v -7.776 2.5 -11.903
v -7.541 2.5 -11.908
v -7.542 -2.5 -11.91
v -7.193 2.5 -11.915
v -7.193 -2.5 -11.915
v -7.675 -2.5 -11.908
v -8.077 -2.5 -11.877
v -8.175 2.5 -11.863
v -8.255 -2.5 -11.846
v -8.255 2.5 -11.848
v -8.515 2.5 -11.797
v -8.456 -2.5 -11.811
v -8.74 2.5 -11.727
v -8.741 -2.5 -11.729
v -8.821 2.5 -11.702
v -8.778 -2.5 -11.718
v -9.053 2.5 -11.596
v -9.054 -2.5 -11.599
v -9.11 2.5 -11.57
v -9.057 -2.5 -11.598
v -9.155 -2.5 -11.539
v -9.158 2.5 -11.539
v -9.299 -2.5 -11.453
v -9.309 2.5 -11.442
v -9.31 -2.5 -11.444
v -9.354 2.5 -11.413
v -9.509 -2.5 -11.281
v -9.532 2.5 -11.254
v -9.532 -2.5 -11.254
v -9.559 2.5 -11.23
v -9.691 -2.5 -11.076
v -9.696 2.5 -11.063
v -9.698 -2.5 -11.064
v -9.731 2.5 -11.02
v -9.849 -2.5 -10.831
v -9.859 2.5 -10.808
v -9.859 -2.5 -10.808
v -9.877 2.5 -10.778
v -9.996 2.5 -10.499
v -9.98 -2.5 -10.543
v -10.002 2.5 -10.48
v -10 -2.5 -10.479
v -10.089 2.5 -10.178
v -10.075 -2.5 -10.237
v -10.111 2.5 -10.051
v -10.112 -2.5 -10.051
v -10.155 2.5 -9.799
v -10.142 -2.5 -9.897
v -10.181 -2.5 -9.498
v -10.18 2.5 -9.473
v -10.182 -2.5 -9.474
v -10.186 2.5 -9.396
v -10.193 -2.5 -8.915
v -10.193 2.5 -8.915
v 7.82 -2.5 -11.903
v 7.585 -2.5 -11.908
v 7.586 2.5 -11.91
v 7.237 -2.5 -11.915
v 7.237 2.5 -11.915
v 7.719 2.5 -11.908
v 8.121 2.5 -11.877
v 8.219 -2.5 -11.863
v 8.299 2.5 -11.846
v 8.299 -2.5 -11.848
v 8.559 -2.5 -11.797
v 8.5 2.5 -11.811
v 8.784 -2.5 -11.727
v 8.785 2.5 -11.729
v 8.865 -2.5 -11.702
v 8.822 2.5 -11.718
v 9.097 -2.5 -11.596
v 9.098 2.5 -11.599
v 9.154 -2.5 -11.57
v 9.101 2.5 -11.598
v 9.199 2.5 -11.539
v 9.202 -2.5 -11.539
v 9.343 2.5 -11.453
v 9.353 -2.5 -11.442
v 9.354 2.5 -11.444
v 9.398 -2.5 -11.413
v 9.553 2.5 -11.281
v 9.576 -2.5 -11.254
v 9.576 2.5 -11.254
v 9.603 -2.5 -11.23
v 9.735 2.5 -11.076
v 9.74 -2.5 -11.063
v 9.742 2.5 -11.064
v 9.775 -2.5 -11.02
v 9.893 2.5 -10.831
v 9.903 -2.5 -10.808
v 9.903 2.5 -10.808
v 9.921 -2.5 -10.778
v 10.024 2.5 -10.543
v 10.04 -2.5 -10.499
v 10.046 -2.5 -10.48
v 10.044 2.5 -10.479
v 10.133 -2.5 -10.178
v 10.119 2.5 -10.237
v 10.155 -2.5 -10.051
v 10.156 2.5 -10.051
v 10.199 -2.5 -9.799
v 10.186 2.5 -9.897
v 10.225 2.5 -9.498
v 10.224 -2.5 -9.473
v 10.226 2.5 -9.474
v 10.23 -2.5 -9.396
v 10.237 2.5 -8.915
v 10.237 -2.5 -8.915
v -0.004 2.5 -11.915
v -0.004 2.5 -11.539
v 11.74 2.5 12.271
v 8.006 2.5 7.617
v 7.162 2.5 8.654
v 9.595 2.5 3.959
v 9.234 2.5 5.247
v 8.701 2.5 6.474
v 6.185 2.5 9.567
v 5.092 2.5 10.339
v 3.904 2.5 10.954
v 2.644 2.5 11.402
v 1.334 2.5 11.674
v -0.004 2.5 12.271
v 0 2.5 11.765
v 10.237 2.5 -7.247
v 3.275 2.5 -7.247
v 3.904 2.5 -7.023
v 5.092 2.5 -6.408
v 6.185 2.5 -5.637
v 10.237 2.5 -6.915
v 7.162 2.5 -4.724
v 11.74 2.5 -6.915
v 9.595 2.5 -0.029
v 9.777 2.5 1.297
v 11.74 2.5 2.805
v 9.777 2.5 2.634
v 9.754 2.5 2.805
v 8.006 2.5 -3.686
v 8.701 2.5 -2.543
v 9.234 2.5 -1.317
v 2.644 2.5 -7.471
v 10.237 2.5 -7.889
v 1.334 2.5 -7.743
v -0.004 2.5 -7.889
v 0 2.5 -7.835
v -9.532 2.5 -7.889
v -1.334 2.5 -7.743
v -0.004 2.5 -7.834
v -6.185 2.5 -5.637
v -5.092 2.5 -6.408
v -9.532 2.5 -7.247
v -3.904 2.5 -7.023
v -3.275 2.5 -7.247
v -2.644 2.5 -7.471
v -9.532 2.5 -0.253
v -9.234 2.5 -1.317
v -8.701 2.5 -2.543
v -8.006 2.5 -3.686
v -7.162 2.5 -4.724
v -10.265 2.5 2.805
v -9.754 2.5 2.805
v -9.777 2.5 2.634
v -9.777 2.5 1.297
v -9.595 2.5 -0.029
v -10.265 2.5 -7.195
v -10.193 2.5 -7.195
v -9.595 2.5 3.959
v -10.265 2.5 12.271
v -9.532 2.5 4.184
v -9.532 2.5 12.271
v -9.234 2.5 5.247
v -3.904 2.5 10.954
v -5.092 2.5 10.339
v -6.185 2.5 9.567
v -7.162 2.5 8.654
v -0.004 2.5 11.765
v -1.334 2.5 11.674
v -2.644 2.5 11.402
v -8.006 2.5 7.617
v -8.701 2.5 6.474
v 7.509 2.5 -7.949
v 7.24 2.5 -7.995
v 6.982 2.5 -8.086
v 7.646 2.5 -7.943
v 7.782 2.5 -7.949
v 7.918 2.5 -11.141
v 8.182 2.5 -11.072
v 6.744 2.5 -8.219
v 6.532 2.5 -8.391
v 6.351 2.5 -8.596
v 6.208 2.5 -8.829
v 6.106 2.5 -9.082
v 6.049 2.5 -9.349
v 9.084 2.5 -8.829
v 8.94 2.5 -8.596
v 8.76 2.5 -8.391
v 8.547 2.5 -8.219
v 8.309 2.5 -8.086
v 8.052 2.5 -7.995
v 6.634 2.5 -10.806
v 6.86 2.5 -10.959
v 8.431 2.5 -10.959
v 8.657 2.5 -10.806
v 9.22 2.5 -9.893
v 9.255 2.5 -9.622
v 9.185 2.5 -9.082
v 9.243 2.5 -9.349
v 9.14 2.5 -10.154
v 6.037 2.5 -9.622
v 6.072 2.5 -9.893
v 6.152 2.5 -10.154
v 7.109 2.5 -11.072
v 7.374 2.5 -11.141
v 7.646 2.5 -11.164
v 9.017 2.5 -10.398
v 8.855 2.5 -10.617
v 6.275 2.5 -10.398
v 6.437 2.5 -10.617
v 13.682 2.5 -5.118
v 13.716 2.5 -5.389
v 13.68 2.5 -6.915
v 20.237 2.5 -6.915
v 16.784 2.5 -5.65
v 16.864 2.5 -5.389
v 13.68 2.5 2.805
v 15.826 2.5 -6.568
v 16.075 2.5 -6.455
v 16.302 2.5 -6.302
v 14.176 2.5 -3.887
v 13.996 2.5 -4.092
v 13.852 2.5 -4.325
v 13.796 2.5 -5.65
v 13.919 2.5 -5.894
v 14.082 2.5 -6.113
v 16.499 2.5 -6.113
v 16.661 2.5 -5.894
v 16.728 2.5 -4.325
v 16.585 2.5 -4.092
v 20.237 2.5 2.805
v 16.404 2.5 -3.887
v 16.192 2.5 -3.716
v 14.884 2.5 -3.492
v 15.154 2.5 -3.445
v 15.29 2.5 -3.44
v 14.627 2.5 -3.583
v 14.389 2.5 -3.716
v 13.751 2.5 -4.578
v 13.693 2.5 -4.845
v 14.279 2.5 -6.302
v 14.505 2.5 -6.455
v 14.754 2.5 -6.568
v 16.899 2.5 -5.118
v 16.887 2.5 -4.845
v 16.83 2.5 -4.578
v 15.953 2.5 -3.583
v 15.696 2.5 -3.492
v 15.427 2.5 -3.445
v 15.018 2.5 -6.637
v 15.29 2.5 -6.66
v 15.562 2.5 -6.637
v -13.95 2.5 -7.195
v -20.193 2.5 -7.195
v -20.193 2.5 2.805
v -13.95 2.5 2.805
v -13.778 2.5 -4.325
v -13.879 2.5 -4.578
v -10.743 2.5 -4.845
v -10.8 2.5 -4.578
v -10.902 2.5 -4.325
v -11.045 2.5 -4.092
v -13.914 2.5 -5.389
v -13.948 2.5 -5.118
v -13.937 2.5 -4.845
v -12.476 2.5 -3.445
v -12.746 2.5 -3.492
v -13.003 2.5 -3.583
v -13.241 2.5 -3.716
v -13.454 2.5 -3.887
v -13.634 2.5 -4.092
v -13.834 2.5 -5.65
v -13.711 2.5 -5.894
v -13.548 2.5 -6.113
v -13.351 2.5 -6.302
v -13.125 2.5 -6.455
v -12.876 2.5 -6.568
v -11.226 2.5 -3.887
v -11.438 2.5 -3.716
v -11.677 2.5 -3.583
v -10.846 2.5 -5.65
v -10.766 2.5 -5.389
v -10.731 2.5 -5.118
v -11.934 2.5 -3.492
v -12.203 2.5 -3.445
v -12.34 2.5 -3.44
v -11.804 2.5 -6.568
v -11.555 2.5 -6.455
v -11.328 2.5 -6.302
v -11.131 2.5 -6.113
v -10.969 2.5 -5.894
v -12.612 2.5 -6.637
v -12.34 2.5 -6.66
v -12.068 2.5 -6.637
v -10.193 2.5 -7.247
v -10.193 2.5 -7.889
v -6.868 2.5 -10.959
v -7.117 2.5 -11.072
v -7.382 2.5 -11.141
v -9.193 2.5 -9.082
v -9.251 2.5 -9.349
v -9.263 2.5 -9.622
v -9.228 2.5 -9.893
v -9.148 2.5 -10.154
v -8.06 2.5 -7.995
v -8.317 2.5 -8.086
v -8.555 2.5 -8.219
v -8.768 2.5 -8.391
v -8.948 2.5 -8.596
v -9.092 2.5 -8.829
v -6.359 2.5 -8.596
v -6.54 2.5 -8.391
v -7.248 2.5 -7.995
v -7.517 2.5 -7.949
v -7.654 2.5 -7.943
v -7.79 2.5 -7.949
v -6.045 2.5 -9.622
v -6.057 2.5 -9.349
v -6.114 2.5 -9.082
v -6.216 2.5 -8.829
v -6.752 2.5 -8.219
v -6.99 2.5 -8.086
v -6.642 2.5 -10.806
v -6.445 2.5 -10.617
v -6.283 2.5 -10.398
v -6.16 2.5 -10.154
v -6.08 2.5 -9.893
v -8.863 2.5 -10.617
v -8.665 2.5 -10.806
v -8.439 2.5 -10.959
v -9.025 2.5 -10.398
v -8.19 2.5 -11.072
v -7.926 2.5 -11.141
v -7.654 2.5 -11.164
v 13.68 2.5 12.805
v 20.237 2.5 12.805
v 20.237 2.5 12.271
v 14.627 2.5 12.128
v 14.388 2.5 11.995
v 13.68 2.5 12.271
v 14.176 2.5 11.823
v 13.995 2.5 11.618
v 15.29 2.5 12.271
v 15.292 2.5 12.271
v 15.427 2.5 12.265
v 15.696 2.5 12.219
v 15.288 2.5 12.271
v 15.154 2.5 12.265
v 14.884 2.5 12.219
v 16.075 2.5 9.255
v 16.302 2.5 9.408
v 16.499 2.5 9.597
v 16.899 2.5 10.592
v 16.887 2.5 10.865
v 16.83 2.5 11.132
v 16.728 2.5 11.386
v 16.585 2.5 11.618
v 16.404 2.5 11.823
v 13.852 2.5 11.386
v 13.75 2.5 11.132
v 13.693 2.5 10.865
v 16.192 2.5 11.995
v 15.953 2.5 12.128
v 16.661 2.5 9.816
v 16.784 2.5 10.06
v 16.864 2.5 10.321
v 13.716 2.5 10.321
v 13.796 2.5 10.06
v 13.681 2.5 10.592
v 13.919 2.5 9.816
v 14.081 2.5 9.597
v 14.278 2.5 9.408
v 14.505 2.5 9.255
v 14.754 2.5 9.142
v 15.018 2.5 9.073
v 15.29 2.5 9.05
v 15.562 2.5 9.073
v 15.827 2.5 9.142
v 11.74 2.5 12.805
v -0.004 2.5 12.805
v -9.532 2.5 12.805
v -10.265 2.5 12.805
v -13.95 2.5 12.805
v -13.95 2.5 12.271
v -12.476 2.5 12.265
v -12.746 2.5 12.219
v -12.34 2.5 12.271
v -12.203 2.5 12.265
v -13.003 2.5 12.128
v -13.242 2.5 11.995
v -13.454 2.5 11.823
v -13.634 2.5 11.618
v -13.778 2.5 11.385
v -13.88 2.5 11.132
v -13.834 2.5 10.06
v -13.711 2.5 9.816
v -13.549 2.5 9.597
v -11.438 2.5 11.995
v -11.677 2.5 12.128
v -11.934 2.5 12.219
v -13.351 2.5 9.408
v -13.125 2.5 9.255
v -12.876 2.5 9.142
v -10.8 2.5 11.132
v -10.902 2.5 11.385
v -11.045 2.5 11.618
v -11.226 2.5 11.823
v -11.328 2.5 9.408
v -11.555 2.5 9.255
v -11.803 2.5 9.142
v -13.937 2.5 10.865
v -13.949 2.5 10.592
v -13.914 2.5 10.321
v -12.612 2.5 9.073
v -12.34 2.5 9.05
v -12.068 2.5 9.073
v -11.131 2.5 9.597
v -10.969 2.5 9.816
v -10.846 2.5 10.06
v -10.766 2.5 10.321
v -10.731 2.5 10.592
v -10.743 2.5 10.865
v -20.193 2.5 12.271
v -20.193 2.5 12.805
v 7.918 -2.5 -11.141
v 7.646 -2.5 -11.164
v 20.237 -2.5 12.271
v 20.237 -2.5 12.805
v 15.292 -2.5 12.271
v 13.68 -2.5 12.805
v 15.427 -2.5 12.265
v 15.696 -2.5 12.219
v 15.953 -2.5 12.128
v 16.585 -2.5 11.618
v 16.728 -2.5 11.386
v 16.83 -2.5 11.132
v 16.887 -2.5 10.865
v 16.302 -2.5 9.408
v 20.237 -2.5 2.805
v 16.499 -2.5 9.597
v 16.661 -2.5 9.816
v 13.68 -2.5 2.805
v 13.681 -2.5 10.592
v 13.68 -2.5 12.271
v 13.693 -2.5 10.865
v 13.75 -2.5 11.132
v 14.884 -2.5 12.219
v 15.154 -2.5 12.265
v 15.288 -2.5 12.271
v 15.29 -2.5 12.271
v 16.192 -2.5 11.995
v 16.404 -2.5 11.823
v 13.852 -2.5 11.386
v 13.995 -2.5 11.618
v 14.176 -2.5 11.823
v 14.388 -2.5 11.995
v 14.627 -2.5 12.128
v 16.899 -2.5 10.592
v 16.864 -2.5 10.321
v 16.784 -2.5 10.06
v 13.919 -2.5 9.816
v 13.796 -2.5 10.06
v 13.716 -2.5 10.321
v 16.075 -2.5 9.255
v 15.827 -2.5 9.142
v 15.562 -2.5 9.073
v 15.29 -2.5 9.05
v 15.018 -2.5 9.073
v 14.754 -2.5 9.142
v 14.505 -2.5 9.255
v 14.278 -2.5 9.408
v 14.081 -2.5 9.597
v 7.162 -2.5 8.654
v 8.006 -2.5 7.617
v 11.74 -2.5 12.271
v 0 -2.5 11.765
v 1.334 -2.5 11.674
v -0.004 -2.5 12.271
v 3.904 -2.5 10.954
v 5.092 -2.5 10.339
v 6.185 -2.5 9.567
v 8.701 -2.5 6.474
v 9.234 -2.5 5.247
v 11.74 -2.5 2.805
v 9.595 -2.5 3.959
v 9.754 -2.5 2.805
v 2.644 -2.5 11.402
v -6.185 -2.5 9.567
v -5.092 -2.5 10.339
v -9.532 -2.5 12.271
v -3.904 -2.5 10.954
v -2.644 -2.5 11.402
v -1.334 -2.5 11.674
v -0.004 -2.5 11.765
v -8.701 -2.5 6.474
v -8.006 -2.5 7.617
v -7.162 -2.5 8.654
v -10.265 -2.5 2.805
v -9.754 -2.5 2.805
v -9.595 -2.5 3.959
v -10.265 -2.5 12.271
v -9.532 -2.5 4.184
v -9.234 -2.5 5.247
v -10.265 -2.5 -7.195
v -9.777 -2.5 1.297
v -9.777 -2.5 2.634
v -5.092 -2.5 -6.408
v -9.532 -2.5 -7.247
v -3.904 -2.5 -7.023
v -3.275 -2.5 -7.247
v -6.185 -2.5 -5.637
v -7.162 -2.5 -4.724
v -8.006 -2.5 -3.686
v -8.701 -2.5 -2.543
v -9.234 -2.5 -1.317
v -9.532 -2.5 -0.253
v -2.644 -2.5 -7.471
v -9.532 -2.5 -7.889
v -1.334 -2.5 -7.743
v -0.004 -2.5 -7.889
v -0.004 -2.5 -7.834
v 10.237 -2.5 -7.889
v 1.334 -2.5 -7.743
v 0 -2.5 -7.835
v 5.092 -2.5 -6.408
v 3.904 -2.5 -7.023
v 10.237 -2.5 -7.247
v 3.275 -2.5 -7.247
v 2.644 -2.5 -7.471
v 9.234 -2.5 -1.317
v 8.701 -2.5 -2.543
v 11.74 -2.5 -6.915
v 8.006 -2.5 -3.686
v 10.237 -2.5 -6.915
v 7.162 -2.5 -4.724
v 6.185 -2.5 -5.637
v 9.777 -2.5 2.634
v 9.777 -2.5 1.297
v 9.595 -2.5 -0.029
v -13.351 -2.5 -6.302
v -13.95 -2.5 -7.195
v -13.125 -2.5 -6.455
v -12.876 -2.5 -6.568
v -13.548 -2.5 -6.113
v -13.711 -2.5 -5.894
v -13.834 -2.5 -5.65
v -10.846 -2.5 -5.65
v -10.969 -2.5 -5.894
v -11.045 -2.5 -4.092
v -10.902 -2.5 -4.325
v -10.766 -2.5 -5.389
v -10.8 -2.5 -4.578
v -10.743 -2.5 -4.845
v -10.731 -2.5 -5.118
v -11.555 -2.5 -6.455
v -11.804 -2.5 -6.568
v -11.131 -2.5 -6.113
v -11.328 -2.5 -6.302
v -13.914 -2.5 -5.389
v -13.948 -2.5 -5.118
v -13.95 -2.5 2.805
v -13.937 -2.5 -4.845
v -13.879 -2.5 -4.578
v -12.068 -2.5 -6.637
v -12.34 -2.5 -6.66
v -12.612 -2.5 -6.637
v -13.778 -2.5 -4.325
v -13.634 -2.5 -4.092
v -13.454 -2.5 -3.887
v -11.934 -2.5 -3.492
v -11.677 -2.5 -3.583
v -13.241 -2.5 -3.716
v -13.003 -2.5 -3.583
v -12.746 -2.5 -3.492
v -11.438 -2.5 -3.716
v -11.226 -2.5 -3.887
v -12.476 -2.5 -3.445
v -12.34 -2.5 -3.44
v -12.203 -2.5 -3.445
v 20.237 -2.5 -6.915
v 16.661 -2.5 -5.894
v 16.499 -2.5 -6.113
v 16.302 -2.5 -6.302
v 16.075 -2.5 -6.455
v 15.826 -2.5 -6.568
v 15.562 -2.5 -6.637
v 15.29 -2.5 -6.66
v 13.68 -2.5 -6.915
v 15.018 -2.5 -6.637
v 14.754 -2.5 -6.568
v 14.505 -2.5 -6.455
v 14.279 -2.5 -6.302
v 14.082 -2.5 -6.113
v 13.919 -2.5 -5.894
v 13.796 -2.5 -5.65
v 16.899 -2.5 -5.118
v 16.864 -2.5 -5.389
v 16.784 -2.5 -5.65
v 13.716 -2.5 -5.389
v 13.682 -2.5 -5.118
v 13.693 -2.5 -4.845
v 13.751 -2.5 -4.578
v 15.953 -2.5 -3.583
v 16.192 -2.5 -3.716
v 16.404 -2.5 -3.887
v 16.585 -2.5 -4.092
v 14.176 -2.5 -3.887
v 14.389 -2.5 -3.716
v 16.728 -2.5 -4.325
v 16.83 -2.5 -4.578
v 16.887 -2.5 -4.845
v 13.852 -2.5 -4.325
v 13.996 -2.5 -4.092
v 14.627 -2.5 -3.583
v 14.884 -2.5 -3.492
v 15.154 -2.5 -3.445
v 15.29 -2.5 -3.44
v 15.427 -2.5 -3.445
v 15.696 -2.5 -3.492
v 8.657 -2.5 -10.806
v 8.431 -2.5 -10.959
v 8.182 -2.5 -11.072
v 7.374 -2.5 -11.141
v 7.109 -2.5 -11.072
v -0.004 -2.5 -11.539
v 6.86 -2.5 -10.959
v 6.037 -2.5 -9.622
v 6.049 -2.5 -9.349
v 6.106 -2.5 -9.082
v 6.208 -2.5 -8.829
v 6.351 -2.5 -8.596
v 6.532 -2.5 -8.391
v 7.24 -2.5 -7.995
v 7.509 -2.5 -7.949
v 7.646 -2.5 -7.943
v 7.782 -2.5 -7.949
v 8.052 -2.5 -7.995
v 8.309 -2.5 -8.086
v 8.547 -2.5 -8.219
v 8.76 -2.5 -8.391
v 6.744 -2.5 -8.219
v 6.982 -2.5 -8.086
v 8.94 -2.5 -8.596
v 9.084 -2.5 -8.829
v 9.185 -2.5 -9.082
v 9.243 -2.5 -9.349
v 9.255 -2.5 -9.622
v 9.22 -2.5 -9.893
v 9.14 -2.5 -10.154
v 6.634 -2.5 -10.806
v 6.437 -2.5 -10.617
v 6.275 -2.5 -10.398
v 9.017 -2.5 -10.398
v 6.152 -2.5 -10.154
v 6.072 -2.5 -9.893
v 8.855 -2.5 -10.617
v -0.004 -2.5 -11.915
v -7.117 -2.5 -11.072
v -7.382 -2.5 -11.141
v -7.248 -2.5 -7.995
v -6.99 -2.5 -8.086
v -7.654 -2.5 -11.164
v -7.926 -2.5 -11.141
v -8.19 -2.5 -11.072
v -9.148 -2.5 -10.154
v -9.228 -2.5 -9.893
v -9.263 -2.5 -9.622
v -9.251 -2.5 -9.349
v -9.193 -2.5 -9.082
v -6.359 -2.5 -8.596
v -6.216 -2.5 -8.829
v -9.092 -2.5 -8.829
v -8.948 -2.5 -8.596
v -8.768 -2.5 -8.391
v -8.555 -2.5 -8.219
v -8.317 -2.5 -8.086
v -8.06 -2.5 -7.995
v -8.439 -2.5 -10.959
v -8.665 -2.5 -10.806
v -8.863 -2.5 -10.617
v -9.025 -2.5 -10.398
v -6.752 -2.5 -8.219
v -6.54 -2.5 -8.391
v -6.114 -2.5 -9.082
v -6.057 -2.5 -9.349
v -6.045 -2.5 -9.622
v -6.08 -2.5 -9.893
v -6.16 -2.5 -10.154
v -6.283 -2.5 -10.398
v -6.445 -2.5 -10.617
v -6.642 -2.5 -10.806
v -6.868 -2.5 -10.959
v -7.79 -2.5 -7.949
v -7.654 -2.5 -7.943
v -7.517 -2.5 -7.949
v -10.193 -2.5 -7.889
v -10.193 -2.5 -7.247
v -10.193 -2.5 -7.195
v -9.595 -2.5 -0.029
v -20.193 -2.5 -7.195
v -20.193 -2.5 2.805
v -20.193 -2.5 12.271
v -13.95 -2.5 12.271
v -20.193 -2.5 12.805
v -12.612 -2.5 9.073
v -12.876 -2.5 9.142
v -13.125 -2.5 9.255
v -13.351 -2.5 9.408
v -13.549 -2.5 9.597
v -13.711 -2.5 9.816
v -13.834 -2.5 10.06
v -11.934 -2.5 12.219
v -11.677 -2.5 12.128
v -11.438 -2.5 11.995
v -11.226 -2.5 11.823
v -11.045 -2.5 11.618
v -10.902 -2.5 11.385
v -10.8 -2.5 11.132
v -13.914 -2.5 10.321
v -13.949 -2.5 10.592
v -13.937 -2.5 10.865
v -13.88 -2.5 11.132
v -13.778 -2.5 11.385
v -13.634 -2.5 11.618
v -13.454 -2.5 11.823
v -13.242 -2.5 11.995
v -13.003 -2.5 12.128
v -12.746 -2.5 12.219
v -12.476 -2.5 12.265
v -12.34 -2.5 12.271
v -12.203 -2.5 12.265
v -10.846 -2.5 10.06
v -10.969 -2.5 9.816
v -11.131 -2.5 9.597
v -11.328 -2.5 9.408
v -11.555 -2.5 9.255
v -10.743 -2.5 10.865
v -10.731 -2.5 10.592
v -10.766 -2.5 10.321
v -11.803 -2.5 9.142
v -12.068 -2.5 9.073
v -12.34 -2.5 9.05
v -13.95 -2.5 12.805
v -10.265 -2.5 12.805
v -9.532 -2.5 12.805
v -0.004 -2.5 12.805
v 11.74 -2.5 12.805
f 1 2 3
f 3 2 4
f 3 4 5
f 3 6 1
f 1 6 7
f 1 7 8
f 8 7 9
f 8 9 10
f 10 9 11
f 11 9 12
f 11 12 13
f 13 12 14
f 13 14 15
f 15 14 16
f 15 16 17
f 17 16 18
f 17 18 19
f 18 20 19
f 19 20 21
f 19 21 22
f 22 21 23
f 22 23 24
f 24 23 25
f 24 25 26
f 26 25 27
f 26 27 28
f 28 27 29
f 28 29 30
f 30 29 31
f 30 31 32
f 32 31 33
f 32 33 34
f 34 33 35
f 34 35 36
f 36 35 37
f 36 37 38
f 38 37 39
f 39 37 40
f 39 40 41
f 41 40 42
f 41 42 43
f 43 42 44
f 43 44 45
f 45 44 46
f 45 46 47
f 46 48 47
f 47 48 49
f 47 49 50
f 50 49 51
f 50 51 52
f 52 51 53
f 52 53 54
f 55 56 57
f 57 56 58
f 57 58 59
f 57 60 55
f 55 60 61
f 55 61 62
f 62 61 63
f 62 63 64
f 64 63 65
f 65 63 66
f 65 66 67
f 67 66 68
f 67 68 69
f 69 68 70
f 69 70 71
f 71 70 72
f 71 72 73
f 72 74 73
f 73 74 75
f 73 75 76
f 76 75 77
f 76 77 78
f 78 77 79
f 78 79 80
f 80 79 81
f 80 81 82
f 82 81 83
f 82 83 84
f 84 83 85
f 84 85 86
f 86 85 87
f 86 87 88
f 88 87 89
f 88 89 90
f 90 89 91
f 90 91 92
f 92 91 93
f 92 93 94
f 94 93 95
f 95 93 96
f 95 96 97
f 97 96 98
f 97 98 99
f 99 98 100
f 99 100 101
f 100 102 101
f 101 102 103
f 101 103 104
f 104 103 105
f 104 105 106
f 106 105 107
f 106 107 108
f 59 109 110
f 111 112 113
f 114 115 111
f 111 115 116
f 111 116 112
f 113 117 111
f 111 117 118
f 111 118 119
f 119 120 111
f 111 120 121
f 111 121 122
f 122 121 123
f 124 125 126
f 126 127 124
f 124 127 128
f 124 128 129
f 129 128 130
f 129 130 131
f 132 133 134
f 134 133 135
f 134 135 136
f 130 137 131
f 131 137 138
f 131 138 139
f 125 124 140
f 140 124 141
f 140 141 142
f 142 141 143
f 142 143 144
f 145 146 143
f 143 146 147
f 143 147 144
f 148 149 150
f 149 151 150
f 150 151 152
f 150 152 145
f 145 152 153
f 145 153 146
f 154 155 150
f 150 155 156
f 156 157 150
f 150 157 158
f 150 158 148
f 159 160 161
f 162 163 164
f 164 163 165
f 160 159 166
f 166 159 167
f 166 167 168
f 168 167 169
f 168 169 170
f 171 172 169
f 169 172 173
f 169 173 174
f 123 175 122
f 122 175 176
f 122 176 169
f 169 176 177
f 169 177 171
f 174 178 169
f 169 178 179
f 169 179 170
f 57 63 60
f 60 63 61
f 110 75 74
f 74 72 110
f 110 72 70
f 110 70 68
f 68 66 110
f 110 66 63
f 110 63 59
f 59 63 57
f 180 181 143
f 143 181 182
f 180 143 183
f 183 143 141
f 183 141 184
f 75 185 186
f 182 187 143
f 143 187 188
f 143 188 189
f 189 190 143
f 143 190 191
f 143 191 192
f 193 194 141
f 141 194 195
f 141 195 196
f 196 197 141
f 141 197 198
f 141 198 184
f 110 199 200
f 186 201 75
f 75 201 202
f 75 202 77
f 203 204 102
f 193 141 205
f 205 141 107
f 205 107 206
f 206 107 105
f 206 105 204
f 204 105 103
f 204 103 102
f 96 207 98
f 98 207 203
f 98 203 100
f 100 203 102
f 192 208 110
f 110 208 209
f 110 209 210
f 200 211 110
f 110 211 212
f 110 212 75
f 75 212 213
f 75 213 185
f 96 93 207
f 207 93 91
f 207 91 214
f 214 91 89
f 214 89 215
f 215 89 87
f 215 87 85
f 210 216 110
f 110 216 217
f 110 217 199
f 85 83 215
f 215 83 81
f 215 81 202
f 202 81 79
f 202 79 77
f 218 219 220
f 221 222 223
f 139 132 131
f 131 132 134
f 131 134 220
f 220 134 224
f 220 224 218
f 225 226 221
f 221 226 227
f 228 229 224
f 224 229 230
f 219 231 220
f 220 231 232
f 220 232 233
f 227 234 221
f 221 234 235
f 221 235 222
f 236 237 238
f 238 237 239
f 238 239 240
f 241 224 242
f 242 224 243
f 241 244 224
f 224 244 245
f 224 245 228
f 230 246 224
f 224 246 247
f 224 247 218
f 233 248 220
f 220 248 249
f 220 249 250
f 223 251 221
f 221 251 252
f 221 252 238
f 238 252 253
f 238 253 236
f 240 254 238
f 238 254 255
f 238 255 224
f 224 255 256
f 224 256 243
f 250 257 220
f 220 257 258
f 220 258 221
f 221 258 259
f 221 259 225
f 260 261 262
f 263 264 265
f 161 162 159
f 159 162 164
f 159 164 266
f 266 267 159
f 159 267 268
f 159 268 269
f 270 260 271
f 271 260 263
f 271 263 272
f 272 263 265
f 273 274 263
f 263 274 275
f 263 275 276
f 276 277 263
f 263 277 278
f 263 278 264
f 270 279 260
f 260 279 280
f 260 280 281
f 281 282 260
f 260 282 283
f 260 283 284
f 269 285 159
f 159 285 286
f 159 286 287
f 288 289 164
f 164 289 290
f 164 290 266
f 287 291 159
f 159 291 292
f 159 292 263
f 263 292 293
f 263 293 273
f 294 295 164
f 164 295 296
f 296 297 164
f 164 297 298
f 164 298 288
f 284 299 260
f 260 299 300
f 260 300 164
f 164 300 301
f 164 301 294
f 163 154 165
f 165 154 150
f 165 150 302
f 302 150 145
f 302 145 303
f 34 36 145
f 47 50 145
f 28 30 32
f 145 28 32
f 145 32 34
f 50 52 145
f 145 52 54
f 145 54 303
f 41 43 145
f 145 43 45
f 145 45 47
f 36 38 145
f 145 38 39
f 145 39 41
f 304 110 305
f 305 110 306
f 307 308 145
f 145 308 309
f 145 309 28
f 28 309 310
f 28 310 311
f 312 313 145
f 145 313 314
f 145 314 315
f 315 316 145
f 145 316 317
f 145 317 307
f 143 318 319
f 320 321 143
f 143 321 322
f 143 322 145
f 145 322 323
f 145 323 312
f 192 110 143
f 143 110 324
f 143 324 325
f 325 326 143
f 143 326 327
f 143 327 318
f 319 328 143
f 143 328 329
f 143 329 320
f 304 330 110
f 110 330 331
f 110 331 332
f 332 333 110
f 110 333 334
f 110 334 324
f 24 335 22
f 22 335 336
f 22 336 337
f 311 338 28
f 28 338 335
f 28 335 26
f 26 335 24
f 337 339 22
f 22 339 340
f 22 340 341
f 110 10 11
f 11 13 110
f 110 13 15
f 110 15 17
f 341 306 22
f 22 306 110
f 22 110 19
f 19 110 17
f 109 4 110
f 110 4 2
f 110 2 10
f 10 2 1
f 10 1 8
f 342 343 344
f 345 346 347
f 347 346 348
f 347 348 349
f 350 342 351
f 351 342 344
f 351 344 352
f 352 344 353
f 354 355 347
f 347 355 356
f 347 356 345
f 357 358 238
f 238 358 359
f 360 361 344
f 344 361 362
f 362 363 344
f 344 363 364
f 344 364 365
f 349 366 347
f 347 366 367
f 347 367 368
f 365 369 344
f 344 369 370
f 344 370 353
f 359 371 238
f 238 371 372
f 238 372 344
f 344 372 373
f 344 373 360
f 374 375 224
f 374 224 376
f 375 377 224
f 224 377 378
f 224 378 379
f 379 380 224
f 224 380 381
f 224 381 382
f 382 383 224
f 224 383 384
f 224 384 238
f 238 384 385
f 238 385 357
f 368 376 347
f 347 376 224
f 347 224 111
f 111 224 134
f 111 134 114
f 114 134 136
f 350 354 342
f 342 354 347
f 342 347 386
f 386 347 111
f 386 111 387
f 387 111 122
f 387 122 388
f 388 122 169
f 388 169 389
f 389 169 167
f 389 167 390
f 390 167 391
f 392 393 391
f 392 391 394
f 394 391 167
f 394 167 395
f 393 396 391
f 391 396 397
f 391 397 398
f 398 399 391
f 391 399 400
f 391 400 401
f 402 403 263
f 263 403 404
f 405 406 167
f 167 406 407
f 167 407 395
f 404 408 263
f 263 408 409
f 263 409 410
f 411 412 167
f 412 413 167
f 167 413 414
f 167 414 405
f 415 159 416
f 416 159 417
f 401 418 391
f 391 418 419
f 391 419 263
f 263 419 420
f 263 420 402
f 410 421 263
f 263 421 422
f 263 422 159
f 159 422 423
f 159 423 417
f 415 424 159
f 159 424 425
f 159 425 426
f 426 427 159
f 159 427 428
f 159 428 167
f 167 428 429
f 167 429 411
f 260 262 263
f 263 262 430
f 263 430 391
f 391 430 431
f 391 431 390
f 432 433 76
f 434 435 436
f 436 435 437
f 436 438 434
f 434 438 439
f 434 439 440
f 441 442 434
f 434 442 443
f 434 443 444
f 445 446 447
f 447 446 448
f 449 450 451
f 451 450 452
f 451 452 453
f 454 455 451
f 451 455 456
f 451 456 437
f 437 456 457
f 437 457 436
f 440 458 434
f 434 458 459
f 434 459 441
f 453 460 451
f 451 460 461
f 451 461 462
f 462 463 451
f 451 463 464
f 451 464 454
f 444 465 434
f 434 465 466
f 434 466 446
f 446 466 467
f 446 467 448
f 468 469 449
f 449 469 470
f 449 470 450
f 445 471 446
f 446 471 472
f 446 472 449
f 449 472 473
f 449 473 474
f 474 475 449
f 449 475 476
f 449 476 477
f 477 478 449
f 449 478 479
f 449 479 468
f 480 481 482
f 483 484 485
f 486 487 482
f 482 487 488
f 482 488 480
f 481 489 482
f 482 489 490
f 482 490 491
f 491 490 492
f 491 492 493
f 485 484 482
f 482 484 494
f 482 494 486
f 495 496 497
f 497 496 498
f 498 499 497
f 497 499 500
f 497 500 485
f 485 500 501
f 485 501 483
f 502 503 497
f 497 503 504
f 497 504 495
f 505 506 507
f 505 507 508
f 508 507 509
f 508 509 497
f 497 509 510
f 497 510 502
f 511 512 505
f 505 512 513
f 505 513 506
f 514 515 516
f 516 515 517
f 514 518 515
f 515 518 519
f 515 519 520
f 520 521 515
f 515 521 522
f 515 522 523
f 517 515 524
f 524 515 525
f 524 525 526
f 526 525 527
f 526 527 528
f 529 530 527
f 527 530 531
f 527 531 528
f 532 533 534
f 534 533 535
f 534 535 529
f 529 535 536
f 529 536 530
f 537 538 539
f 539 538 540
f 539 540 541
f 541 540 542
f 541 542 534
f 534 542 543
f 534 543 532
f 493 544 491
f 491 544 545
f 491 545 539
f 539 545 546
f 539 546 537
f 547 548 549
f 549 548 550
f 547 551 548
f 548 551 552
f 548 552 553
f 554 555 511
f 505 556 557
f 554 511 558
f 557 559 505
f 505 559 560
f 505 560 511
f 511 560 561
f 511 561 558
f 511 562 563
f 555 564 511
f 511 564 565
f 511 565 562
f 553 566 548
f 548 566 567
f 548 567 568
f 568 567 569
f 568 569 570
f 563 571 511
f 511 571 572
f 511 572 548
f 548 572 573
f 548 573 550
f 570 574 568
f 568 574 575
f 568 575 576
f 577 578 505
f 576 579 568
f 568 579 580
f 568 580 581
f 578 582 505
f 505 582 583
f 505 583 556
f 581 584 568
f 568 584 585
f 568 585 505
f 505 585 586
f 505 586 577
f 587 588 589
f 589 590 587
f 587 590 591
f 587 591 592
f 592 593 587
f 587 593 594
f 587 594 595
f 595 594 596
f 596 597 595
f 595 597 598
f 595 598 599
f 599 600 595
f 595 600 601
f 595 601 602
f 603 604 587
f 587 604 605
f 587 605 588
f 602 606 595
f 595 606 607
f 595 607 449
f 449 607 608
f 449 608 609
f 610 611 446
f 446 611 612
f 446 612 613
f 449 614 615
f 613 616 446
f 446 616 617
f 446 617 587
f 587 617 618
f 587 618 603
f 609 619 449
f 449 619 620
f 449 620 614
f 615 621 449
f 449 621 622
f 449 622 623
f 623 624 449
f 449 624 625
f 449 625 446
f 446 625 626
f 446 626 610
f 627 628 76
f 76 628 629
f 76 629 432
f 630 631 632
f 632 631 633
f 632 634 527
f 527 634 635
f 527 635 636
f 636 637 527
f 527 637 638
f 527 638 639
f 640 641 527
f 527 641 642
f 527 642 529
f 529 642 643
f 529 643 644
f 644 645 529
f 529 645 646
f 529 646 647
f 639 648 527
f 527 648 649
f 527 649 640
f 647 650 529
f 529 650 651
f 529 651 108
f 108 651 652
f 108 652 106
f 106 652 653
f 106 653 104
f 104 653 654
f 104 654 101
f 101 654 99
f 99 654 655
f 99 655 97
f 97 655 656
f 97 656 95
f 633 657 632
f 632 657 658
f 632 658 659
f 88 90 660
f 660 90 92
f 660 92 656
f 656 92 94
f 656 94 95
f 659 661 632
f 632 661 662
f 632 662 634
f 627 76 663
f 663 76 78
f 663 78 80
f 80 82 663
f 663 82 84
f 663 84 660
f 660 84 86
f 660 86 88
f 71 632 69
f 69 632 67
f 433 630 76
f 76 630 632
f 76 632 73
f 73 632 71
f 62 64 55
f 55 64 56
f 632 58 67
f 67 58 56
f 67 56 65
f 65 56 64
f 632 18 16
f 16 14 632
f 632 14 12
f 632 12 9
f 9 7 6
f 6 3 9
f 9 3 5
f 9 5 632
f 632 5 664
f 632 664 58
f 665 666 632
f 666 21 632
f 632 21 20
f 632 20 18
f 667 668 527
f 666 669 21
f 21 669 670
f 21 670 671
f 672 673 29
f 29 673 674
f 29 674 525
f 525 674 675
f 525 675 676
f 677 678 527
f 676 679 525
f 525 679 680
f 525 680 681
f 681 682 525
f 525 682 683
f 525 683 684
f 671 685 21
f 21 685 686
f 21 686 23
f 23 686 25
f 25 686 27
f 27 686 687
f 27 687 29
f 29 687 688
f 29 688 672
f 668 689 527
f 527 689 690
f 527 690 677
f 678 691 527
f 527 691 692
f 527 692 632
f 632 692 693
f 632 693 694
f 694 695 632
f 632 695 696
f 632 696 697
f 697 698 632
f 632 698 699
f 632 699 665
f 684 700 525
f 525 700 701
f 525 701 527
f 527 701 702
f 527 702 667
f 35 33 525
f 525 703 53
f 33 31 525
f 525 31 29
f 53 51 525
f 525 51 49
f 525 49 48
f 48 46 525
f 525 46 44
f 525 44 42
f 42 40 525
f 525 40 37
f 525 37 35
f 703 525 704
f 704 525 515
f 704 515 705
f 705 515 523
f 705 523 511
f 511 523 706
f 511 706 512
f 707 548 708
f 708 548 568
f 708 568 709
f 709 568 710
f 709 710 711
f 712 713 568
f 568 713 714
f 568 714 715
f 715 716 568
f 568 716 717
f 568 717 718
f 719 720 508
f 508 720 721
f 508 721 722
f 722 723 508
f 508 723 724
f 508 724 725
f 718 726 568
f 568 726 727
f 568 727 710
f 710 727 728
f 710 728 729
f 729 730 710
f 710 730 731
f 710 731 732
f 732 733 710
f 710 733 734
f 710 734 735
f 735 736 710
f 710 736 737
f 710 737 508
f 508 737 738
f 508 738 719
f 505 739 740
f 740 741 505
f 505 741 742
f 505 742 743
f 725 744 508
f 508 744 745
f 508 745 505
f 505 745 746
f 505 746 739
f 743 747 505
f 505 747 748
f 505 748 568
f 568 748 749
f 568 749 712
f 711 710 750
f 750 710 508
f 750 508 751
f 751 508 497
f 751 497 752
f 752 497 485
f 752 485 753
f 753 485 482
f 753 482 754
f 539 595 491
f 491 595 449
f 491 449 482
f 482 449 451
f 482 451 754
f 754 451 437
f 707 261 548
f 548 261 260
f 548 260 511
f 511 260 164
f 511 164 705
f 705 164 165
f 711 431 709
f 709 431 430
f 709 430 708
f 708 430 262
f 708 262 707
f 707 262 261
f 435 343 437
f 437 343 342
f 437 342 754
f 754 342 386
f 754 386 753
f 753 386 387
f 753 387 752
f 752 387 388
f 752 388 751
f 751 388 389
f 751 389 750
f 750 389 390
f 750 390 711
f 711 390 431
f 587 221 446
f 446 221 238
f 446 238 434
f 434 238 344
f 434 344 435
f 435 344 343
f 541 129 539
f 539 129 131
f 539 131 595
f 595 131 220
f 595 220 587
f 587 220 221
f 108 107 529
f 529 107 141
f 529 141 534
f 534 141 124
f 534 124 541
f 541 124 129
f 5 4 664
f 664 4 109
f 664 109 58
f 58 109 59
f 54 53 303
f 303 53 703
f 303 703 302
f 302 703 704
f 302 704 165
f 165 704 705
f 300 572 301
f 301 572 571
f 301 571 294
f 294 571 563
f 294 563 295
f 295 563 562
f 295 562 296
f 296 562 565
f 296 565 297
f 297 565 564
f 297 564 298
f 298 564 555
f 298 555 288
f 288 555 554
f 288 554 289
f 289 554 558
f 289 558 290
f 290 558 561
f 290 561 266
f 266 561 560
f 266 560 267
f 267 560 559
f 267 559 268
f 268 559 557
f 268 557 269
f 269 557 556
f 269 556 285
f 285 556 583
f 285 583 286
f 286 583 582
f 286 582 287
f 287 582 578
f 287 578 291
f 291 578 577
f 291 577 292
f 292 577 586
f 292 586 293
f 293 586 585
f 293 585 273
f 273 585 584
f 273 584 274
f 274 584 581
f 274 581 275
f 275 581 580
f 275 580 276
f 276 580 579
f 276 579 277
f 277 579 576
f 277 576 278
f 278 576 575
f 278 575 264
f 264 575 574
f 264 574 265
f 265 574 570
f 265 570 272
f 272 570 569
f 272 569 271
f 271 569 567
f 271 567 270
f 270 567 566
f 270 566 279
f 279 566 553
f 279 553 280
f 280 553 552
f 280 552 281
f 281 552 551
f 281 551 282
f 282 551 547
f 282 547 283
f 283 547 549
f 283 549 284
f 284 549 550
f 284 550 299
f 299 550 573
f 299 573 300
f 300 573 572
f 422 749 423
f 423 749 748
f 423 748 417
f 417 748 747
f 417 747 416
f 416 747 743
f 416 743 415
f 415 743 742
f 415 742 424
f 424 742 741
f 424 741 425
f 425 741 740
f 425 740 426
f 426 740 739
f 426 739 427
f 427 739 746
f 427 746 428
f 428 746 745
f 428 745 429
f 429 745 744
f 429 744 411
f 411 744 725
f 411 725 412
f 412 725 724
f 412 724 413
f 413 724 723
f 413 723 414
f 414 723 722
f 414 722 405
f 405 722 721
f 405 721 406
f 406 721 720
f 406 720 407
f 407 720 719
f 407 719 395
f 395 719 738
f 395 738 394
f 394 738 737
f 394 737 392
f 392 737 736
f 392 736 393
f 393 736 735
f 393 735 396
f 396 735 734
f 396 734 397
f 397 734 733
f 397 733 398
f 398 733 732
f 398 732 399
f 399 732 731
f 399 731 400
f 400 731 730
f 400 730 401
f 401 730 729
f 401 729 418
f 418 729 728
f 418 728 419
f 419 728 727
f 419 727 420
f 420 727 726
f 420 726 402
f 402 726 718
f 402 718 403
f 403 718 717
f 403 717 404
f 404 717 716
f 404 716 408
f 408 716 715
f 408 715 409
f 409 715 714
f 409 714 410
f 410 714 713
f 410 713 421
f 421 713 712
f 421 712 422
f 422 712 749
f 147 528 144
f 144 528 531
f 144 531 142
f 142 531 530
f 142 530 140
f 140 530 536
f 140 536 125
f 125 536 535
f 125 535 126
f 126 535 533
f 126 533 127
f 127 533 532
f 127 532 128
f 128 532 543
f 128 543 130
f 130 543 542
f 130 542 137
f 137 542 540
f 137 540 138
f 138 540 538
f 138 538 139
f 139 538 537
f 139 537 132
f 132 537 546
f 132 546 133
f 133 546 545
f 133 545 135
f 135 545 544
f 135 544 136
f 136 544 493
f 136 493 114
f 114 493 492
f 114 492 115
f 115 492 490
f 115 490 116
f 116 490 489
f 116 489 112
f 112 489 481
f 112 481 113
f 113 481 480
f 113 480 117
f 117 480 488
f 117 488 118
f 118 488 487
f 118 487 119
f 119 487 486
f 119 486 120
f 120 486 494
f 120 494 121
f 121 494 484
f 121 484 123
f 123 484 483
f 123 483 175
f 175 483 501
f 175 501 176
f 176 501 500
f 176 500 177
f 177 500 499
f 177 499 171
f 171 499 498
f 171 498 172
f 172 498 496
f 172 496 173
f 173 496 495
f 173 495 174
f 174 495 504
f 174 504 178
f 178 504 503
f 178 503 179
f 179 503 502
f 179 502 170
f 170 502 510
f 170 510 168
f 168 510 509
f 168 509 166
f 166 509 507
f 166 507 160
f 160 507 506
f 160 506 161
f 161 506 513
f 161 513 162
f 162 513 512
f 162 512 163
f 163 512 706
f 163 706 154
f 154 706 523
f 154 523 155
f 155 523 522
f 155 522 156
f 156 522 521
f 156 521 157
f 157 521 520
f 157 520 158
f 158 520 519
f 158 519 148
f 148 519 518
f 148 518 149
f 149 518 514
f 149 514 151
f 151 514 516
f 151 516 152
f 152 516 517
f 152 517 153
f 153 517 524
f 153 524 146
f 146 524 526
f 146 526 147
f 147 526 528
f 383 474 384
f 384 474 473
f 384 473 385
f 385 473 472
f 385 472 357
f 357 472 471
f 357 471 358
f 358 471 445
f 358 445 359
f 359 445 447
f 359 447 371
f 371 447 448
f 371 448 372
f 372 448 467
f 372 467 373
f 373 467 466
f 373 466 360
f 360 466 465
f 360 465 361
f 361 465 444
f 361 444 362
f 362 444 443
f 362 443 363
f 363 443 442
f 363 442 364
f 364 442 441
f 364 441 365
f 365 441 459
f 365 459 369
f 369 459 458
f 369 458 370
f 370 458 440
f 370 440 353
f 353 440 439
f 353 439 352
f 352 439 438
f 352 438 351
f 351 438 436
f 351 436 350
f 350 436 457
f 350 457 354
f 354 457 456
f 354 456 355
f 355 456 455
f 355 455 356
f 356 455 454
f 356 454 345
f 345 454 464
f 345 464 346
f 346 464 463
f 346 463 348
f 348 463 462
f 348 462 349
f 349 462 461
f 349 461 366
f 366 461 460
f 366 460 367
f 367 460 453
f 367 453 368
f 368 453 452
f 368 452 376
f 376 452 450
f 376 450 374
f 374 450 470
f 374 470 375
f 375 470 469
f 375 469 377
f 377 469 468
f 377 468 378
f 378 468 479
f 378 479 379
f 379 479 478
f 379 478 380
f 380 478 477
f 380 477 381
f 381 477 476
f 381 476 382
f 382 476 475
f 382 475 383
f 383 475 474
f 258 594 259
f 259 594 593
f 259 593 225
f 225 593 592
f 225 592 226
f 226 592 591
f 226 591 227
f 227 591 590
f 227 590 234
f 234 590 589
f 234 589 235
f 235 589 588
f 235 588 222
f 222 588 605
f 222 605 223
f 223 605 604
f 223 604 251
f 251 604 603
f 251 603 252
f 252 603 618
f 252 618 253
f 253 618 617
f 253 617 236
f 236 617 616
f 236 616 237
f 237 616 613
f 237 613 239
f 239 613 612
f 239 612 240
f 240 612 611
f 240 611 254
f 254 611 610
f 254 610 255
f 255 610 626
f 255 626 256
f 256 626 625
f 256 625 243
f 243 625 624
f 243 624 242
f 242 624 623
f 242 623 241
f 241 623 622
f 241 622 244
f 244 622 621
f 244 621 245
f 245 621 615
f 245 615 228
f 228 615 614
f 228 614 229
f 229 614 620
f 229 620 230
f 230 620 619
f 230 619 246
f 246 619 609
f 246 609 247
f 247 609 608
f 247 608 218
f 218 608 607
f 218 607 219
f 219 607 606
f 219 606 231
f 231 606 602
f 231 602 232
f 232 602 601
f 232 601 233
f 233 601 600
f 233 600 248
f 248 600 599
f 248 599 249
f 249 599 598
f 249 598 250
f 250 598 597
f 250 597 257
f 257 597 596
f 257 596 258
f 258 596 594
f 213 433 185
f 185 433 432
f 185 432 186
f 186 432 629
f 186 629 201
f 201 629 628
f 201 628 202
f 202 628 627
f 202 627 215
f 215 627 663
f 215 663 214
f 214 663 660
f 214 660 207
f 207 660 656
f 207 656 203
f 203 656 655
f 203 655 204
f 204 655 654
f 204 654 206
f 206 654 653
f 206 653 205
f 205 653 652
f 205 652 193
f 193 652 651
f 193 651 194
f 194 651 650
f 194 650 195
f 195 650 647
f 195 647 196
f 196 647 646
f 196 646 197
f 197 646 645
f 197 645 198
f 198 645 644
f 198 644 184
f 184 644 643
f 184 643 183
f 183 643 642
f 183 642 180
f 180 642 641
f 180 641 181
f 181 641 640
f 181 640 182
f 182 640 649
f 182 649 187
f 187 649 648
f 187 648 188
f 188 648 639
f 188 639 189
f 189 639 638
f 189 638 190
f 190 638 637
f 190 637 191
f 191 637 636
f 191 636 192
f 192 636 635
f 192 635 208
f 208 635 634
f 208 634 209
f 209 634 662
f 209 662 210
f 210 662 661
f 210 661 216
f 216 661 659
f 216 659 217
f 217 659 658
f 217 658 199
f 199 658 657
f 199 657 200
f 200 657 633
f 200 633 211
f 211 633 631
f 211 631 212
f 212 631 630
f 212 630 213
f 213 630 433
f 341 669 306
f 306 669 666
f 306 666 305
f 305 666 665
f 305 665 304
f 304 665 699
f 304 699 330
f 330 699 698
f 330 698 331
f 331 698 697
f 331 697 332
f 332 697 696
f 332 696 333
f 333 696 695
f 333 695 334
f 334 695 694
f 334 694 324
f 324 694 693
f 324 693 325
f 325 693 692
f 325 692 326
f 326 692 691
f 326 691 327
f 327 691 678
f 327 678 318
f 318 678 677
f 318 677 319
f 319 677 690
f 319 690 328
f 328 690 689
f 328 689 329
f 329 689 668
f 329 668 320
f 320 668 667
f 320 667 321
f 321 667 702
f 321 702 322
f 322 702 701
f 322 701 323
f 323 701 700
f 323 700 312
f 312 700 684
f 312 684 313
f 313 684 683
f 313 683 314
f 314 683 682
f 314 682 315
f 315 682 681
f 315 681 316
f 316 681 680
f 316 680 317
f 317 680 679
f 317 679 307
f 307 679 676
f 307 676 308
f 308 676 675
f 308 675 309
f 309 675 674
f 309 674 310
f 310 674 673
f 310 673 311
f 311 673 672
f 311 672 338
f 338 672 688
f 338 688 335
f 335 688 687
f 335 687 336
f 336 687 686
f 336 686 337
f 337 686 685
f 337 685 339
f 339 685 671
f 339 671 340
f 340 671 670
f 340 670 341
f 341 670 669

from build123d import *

# Parameters (mm, degrees)
CROQUIS1_R              = 9.8
CROQUIS1_R_2            = 1.61
CROQUIS1_R_3            = 1.610199264
CROQUIS1_R_4            = 1.610298895
SALIENTE_EXTRUIR3_DEPTH = 2.5
REDONDEO1_SIZE          = 3
REDONDEO2_SIZE          = 3


with BuildPart() as part:
    # Croquis1 → Saliente-Extruir3 (new, symmetric)
    with BuildSketch(Plane(origin=(0, 0, 0), x_dir=(1, 0, 0), z_dir=(0, 1, 0))):
        Polygon((-20.192989013, 7.194690523), (-10.192989013, 7.194690523), (-10.192989013, 11.914690523), (10.237010987, 11.914690523), (10.237010987, 6.914690523), (20.237010987, 6.914690523), (20.237010987, -12.805309477), (-20.192989013, -12.805309477), align=None)
        with Locations(Location((0, -1.965309477, 0), (0, 0, 270))):
            Circle(CROQUIS1_R, mode=Mode.SUBTRACT)
        with Locations(Location((-12.339891833, 5.049690523, 0), (0, 0, 270))):
            Circle(CROQUIS1_R_2, mode=Mode.SUBTRACT)
        with Locations(Location((-12.339891833, -10.660508741, 0), (0, 0, 270))):
            Circle(CROQUIS1_R_3, mode=Mode.SUBTRACT)
        with Locations(Location((15.290108167, 5.049690523, 0), (0, 0, 270))):
            Circle(CROQUIS1_R_2, mode=Mode.SUBTRACT)
        with Locations(Location((15.290108167, -10.660608373, 0), (0, 0, 270))):
            Circle(CROQUIS1_R_4, mode=Mode.SUBTRACT)
        with Locations(Location((-7.653762012, 9.553535498, 0), (0, 0, 270))):
            Circle(CROQUIS1_R_4, mode=Mode.SUBTRACT)
        with Locations(Location((7.645768396, 9.553535498, 0), (0, 0, 270))):
            Circle(CROQUIS1_R_4, mode=Mode.SUBTRACT)
    extrude(amount=SALIENTE_EXTRUIR3_DEPTH, both=True)

    # Redondeo1
    # a fillet whose section is not a circle: 3 mm, written as the material it takes off along each edge
    with BuildSketch(Plane(origin=(10.237010987, 10, -11.914690523), x_dir=(0, 0, 1), z_dir=(0, -1, 0))) as redondeo1_piece_1:
        with BuildLine():
            add(Edge.make_bspline([(REDONDEO1_SIZE, 0), (REDONDEO1_SIZE * 0.831801948466, 0), (REDONDEO1_SIZE * 0.663603896932, 0), (REDONDEO1_SIZE * 0.292893218813, REDONDEO1_SIZE * 0.0716919198361), (REDONDEO1_SIZE * 0.0716919198361, REDONDEO1_SIZE * 0.292893218813), (0, REDONDEO1_SIZE * 0.663603896932), (0, REDONDEO1_SIZE * 0.831801948466), (0, REDONDEO1_SIZE)], knots=[0, 0, 0, 0, 0, 0, 0.5, 0.5, 1, 1, 1, 1, 1, 1], degree=5))
            Line((0, REDONDEO1_SIZE), (0, 0))
            Line((0, 0), (REDONDEO1_SIZE, 0))
        make_face()
    extrude(amount=20, mode=Mode.SUBTRACT)

    # Redondeo2
    # a fillet whose section is not a circle: 3 mm, written as the material it takes off along each edge
    with BuildSketch(Plane(origin=(-10.192989013, 10, -11.914690523), x_dir=(0, 0, 1), z_dir=(0, -1, 0))) as redondeo2_piece_1:
        with BuildLine():
            add(Edge.make_bspline([(REDONDEO2_SIZE, 0), (REDONDEO2_SIZE * 0.831801948466, 0), (REDONDEO2_SIZE * 0.663603896932, 0), (REDONDEO2_SIZE * 0.292893218813, -REDONDEO2_SIZE * 0.0716919198361), (REDONDEO2_SIZE * 0.0716919198361, -REDONDEO2_SIZE * 0.292893218813), (0, -REDONDEO2_SIZE * 0.663603896932), (0, -REDONDEO2_SIZE * 0.831801948466), (0, -REDONDEO2_SIZE)], knots=[0, 0, 0, 0, 0, 0, 0.5, 0.5, 1, 1, 1, 1, 1, 1], degree=5))
            Line((0, -REDONDEO2_SIZE), (0, 0))
            Line((0, 0), (REDONDEO2_SIZE, 0))
        make_face()
    extrude(amount=20, mode=Mode.SUBTRACT)


solid = part.part
